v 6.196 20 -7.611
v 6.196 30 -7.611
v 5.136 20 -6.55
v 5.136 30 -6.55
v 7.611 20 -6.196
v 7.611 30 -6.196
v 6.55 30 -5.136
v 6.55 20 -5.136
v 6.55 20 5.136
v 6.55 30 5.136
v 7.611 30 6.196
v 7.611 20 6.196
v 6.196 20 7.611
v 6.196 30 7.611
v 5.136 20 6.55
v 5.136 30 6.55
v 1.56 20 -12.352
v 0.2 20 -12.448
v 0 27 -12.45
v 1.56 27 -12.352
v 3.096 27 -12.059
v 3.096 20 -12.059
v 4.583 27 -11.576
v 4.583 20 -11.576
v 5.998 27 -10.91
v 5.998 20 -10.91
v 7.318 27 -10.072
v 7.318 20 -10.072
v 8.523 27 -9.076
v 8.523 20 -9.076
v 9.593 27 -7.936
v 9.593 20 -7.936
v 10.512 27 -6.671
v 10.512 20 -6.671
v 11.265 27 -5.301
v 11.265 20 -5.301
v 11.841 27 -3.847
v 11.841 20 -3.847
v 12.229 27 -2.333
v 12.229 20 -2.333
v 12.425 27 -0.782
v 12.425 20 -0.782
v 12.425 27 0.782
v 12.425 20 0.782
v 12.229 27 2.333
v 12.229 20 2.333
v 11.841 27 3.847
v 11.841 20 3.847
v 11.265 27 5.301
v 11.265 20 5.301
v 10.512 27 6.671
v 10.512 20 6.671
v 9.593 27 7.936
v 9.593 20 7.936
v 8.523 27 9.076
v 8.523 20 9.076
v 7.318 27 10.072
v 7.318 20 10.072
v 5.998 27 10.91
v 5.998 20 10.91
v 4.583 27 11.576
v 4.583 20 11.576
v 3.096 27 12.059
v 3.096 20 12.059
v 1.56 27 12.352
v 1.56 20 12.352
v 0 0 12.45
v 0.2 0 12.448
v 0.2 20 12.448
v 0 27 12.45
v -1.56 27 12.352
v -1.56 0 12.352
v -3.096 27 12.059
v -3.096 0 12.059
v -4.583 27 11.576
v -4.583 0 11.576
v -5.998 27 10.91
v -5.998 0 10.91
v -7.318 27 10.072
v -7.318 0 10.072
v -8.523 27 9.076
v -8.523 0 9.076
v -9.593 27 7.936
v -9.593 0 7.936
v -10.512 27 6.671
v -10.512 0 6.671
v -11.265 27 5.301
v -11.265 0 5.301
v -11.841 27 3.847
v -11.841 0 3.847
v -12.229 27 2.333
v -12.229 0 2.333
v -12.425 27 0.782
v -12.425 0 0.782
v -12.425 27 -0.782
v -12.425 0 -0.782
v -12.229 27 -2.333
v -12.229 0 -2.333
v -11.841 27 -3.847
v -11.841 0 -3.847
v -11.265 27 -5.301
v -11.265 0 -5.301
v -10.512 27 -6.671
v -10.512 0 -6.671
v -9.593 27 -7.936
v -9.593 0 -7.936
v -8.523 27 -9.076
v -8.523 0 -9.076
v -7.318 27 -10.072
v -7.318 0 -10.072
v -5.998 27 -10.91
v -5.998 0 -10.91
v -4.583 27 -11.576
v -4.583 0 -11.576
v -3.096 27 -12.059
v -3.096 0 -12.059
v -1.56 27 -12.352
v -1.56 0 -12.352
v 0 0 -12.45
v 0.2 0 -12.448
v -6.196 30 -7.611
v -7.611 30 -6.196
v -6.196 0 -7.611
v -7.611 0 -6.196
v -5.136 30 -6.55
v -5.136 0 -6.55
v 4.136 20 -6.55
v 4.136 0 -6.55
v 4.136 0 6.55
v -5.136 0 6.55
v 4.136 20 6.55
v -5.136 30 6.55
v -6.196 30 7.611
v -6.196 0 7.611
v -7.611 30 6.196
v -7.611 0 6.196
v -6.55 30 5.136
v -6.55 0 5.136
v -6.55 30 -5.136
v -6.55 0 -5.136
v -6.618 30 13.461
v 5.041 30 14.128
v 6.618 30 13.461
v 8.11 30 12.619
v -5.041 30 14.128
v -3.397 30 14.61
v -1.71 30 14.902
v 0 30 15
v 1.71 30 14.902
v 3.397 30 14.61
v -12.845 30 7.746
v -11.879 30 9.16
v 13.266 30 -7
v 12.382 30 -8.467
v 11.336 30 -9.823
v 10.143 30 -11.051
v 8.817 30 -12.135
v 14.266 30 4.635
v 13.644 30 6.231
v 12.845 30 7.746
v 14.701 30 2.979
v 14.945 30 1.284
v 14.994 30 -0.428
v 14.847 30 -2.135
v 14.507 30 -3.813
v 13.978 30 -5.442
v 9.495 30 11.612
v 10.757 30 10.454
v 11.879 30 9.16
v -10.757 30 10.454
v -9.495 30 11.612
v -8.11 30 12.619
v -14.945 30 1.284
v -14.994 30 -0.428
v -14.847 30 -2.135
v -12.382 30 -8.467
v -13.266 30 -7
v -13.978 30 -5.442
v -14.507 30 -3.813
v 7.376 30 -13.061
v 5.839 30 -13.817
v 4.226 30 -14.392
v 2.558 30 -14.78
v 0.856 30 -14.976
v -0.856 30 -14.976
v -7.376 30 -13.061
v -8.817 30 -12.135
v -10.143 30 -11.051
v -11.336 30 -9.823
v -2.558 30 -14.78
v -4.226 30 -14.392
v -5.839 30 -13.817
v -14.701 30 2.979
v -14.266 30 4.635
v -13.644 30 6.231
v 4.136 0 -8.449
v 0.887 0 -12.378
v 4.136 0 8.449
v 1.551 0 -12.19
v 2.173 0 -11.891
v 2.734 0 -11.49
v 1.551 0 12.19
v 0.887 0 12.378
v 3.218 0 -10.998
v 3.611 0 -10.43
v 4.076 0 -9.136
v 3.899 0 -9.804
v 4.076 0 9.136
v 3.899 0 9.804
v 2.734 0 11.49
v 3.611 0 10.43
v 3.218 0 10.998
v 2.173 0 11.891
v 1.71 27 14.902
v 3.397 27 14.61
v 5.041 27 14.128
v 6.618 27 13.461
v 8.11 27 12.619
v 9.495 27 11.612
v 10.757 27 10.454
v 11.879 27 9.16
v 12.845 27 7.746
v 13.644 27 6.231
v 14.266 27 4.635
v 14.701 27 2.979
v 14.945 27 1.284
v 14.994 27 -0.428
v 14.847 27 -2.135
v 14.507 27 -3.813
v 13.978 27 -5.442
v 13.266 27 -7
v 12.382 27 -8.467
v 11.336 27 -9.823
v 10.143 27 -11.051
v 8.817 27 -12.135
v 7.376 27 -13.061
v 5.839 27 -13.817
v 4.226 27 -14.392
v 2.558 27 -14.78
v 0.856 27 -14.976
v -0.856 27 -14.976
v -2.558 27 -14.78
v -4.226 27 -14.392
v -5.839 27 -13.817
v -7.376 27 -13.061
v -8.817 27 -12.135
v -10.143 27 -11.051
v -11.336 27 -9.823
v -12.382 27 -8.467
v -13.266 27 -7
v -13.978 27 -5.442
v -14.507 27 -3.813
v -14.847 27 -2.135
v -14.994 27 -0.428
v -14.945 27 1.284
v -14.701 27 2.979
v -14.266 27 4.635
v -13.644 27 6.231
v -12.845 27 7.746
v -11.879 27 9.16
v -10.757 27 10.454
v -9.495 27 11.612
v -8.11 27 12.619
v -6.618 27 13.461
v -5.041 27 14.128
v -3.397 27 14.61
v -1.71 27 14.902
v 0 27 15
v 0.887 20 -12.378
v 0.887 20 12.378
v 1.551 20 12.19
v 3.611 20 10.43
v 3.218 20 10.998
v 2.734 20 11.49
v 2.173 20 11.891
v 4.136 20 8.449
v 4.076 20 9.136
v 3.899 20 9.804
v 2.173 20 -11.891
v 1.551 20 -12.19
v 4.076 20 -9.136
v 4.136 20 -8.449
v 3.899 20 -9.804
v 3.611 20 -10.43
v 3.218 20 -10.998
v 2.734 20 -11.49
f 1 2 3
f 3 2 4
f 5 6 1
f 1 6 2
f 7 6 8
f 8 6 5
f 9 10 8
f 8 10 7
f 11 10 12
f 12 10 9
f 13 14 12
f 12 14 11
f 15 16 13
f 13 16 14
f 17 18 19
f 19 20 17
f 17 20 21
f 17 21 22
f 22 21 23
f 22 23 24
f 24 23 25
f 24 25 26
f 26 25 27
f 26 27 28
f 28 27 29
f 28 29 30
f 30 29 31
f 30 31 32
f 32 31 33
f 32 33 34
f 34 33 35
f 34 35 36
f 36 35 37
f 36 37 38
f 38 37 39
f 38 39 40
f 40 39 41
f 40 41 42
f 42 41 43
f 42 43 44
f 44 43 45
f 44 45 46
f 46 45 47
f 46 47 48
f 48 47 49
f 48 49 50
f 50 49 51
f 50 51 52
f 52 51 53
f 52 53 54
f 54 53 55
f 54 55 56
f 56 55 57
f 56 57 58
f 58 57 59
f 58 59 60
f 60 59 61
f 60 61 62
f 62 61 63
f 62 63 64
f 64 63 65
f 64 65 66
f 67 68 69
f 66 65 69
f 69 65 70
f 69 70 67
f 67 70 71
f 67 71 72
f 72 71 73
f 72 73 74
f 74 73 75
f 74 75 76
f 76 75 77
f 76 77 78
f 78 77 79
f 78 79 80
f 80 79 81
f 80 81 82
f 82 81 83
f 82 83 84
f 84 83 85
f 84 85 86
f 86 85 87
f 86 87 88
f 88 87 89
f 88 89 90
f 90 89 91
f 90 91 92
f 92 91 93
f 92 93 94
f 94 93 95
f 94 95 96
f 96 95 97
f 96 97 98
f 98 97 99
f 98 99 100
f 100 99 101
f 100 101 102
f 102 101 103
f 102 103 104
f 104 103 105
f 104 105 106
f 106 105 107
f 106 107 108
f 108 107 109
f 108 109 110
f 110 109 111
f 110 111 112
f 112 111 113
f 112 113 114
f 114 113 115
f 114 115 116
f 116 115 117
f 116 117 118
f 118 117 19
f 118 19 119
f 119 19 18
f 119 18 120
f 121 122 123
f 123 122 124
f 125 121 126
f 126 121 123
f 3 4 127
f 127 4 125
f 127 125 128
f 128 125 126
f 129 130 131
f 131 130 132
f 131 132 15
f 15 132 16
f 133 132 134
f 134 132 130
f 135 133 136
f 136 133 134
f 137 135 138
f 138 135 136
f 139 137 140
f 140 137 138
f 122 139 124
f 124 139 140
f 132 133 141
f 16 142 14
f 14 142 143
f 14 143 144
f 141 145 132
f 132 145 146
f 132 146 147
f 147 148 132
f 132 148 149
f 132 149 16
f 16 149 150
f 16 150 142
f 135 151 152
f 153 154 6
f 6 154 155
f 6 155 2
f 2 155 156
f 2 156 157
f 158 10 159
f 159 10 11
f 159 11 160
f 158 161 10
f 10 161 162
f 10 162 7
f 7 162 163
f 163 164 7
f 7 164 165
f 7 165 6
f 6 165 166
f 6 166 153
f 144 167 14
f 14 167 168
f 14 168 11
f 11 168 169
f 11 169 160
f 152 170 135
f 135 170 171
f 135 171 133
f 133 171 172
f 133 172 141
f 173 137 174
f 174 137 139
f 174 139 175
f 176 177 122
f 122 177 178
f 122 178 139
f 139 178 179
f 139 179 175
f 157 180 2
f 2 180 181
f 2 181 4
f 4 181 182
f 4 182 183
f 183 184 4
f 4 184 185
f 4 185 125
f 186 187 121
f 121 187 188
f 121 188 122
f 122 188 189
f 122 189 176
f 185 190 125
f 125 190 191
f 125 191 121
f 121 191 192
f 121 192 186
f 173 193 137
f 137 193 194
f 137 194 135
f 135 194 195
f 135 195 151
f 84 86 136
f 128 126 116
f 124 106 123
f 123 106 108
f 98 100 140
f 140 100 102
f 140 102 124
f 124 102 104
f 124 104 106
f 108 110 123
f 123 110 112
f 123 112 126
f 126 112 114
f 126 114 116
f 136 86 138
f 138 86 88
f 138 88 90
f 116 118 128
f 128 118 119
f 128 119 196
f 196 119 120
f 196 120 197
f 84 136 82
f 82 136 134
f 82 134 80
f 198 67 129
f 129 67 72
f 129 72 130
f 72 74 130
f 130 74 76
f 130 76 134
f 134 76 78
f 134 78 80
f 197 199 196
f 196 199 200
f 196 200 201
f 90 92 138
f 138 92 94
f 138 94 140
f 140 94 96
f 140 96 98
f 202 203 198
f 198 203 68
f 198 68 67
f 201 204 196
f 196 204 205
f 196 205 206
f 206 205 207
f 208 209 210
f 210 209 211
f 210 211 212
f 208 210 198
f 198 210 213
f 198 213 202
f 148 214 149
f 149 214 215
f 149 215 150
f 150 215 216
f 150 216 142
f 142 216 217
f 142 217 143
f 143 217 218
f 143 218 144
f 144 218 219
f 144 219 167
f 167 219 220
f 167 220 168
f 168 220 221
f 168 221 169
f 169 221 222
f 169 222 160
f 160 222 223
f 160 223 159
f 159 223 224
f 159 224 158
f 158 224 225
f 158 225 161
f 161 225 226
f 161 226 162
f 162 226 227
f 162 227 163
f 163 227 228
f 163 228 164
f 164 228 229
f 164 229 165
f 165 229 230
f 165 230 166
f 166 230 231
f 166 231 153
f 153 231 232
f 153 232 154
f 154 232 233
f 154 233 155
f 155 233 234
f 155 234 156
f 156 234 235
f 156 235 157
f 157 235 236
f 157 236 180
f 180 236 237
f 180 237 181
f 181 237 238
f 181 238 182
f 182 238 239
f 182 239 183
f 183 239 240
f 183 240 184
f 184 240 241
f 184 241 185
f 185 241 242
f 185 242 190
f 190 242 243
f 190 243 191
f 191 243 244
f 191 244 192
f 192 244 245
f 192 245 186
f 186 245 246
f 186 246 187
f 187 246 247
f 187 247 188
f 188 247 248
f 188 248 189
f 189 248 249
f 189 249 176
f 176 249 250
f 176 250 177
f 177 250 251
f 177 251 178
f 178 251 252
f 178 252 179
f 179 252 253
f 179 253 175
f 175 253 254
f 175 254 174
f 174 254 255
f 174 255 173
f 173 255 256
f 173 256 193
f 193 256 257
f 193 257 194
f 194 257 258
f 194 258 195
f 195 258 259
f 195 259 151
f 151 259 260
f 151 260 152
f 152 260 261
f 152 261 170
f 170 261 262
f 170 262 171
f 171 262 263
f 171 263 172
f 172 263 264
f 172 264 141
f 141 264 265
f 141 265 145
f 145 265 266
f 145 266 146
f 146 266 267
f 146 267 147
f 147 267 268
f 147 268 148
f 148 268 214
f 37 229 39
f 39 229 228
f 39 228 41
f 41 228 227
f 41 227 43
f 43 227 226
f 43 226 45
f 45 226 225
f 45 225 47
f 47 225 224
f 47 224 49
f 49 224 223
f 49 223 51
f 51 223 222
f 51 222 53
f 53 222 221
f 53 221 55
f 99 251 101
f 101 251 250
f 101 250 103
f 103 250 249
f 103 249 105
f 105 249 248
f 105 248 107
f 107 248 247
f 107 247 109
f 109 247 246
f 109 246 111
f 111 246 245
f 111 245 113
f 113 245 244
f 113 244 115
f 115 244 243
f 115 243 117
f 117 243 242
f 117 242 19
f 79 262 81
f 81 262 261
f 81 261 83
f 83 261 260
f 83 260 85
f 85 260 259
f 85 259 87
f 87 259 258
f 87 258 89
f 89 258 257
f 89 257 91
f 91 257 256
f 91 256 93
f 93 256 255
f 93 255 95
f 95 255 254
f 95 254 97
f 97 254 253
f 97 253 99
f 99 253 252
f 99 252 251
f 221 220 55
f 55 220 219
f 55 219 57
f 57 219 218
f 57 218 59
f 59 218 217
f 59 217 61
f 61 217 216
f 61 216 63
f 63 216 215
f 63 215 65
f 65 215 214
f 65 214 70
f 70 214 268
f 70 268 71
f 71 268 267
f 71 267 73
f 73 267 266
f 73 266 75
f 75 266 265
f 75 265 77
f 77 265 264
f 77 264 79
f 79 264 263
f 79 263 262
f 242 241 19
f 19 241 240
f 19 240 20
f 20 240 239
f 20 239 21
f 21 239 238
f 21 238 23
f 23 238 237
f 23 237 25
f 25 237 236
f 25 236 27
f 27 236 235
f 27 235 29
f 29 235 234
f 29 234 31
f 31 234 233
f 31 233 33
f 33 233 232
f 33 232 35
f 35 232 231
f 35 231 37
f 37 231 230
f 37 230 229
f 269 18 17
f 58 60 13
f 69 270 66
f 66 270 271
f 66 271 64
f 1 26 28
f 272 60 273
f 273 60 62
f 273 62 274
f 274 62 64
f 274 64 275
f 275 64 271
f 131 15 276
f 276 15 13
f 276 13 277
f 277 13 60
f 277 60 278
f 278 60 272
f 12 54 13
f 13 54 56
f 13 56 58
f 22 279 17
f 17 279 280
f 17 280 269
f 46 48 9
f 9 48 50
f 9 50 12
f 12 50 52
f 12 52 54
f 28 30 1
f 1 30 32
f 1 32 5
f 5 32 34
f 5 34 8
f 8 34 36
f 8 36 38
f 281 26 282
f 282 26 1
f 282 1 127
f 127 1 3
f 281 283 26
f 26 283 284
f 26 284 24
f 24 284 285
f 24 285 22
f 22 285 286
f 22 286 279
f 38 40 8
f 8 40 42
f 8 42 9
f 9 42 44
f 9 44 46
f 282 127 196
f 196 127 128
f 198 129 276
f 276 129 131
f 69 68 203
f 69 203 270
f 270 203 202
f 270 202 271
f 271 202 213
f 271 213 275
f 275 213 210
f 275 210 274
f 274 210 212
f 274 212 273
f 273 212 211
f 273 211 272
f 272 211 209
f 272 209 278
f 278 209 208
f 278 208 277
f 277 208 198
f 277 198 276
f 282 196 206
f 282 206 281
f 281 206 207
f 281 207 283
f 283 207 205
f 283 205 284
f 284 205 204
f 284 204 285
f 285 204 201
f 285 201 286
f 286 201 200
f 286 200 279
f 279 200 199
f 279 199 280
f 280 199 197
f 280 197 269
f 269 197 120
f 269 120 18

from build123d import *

# Parameters (mm, degrees)
SKETCH1_R           = 12.45
BOSS_EXTRUDE3_DEPTH = 30
BOSS_EXTRUDE4_START = -3
SKETCH4_R           = 15
SKETCH4_R_2         = 12.45
BOSS_EXTRUDE4_DEPTH = 3
CUT_EXTRUDE1_DEPTH  = 20
FILLET1_R           = 4


with BuildPart() as part:
    # Sketch1 → Boss-Extrude3 (new body)
    with BuildSketch(Plane(origin=(0, 0, 0), x_dir=(1, 0, 0), z_dir=(0, 1, 0))):
        with Locations(Location((0, 0, 0), (0, 0, 270))):
            Circle(SKETCH1_R)
        Polygon((6.196446609, 7.610660172), (7.610660172, 6.196446609), (6.55, 5.135786438), (6.55, -5.135786438), (7.610660172, -6.196446609), (6.196446609, -7.610660172), (5.135786438, -6.55), (-5.135786438, -6.55), (-6.196446609, -7.610660172), (-7.610660172, -6.196446609), (-6.55, -5.135786438), (-6.55, 5.135786438), (-7.610660172, 6.196446609), (-6.196446609, 7.610660172), (-5.135786438, 6.55), (5.135786438, 6.55), align=None, mode=Mode.SUBTRACT)
    extrude(amount=BOSS_EXTRUDE3_DEPTH)

    # Sketch4 → Boss-Extrude4 (add)
    with BuildSketch(Plane(origin=(0, 30, 0), x_dir=(1, 0, 0), z_dir=(0, 1, 0)).offset(BOSS_EXTRUDE4_START)):
        with Locations(Location((0, 0, 0), (0, 0, 270))):
            Circle(SKETCH4_R)
        with Locations(Location((0, 0, 0), (0, 0, 270))):
            Circle(SKETCH4_R_2, mode=Mode.SUBTRACT)
    extrude(amount=BOSS_EXTRUDE4_DEPTH)

    # Sketch5 → Cut-Extrude1 (cut)
    with BuildSketch(Plane.XZ):
        with BuildLine():
            Line((4.135786438, -11.742988144), (4.135786438, 11.742988144))
            ThreePointArc((4.135786438, 11.742988144), (12.45, 0), (4.135786438, -11.742988144))
        make_face()
    extrude(amount=-CUT_EXTRUDE1_DEPTH, mode=Mode.SUBTRACT)

    # Fillet1
    fillet1_edges = [part.edges().sort_by_distance(p)[0] for p in [
        (4.135786438, 10, -11.742988144),
        (4.135786438, 10, 11.742988144),
    ]]
    fillet(fillet1_edges, radius=FILLET1_R)


solid = part.part
